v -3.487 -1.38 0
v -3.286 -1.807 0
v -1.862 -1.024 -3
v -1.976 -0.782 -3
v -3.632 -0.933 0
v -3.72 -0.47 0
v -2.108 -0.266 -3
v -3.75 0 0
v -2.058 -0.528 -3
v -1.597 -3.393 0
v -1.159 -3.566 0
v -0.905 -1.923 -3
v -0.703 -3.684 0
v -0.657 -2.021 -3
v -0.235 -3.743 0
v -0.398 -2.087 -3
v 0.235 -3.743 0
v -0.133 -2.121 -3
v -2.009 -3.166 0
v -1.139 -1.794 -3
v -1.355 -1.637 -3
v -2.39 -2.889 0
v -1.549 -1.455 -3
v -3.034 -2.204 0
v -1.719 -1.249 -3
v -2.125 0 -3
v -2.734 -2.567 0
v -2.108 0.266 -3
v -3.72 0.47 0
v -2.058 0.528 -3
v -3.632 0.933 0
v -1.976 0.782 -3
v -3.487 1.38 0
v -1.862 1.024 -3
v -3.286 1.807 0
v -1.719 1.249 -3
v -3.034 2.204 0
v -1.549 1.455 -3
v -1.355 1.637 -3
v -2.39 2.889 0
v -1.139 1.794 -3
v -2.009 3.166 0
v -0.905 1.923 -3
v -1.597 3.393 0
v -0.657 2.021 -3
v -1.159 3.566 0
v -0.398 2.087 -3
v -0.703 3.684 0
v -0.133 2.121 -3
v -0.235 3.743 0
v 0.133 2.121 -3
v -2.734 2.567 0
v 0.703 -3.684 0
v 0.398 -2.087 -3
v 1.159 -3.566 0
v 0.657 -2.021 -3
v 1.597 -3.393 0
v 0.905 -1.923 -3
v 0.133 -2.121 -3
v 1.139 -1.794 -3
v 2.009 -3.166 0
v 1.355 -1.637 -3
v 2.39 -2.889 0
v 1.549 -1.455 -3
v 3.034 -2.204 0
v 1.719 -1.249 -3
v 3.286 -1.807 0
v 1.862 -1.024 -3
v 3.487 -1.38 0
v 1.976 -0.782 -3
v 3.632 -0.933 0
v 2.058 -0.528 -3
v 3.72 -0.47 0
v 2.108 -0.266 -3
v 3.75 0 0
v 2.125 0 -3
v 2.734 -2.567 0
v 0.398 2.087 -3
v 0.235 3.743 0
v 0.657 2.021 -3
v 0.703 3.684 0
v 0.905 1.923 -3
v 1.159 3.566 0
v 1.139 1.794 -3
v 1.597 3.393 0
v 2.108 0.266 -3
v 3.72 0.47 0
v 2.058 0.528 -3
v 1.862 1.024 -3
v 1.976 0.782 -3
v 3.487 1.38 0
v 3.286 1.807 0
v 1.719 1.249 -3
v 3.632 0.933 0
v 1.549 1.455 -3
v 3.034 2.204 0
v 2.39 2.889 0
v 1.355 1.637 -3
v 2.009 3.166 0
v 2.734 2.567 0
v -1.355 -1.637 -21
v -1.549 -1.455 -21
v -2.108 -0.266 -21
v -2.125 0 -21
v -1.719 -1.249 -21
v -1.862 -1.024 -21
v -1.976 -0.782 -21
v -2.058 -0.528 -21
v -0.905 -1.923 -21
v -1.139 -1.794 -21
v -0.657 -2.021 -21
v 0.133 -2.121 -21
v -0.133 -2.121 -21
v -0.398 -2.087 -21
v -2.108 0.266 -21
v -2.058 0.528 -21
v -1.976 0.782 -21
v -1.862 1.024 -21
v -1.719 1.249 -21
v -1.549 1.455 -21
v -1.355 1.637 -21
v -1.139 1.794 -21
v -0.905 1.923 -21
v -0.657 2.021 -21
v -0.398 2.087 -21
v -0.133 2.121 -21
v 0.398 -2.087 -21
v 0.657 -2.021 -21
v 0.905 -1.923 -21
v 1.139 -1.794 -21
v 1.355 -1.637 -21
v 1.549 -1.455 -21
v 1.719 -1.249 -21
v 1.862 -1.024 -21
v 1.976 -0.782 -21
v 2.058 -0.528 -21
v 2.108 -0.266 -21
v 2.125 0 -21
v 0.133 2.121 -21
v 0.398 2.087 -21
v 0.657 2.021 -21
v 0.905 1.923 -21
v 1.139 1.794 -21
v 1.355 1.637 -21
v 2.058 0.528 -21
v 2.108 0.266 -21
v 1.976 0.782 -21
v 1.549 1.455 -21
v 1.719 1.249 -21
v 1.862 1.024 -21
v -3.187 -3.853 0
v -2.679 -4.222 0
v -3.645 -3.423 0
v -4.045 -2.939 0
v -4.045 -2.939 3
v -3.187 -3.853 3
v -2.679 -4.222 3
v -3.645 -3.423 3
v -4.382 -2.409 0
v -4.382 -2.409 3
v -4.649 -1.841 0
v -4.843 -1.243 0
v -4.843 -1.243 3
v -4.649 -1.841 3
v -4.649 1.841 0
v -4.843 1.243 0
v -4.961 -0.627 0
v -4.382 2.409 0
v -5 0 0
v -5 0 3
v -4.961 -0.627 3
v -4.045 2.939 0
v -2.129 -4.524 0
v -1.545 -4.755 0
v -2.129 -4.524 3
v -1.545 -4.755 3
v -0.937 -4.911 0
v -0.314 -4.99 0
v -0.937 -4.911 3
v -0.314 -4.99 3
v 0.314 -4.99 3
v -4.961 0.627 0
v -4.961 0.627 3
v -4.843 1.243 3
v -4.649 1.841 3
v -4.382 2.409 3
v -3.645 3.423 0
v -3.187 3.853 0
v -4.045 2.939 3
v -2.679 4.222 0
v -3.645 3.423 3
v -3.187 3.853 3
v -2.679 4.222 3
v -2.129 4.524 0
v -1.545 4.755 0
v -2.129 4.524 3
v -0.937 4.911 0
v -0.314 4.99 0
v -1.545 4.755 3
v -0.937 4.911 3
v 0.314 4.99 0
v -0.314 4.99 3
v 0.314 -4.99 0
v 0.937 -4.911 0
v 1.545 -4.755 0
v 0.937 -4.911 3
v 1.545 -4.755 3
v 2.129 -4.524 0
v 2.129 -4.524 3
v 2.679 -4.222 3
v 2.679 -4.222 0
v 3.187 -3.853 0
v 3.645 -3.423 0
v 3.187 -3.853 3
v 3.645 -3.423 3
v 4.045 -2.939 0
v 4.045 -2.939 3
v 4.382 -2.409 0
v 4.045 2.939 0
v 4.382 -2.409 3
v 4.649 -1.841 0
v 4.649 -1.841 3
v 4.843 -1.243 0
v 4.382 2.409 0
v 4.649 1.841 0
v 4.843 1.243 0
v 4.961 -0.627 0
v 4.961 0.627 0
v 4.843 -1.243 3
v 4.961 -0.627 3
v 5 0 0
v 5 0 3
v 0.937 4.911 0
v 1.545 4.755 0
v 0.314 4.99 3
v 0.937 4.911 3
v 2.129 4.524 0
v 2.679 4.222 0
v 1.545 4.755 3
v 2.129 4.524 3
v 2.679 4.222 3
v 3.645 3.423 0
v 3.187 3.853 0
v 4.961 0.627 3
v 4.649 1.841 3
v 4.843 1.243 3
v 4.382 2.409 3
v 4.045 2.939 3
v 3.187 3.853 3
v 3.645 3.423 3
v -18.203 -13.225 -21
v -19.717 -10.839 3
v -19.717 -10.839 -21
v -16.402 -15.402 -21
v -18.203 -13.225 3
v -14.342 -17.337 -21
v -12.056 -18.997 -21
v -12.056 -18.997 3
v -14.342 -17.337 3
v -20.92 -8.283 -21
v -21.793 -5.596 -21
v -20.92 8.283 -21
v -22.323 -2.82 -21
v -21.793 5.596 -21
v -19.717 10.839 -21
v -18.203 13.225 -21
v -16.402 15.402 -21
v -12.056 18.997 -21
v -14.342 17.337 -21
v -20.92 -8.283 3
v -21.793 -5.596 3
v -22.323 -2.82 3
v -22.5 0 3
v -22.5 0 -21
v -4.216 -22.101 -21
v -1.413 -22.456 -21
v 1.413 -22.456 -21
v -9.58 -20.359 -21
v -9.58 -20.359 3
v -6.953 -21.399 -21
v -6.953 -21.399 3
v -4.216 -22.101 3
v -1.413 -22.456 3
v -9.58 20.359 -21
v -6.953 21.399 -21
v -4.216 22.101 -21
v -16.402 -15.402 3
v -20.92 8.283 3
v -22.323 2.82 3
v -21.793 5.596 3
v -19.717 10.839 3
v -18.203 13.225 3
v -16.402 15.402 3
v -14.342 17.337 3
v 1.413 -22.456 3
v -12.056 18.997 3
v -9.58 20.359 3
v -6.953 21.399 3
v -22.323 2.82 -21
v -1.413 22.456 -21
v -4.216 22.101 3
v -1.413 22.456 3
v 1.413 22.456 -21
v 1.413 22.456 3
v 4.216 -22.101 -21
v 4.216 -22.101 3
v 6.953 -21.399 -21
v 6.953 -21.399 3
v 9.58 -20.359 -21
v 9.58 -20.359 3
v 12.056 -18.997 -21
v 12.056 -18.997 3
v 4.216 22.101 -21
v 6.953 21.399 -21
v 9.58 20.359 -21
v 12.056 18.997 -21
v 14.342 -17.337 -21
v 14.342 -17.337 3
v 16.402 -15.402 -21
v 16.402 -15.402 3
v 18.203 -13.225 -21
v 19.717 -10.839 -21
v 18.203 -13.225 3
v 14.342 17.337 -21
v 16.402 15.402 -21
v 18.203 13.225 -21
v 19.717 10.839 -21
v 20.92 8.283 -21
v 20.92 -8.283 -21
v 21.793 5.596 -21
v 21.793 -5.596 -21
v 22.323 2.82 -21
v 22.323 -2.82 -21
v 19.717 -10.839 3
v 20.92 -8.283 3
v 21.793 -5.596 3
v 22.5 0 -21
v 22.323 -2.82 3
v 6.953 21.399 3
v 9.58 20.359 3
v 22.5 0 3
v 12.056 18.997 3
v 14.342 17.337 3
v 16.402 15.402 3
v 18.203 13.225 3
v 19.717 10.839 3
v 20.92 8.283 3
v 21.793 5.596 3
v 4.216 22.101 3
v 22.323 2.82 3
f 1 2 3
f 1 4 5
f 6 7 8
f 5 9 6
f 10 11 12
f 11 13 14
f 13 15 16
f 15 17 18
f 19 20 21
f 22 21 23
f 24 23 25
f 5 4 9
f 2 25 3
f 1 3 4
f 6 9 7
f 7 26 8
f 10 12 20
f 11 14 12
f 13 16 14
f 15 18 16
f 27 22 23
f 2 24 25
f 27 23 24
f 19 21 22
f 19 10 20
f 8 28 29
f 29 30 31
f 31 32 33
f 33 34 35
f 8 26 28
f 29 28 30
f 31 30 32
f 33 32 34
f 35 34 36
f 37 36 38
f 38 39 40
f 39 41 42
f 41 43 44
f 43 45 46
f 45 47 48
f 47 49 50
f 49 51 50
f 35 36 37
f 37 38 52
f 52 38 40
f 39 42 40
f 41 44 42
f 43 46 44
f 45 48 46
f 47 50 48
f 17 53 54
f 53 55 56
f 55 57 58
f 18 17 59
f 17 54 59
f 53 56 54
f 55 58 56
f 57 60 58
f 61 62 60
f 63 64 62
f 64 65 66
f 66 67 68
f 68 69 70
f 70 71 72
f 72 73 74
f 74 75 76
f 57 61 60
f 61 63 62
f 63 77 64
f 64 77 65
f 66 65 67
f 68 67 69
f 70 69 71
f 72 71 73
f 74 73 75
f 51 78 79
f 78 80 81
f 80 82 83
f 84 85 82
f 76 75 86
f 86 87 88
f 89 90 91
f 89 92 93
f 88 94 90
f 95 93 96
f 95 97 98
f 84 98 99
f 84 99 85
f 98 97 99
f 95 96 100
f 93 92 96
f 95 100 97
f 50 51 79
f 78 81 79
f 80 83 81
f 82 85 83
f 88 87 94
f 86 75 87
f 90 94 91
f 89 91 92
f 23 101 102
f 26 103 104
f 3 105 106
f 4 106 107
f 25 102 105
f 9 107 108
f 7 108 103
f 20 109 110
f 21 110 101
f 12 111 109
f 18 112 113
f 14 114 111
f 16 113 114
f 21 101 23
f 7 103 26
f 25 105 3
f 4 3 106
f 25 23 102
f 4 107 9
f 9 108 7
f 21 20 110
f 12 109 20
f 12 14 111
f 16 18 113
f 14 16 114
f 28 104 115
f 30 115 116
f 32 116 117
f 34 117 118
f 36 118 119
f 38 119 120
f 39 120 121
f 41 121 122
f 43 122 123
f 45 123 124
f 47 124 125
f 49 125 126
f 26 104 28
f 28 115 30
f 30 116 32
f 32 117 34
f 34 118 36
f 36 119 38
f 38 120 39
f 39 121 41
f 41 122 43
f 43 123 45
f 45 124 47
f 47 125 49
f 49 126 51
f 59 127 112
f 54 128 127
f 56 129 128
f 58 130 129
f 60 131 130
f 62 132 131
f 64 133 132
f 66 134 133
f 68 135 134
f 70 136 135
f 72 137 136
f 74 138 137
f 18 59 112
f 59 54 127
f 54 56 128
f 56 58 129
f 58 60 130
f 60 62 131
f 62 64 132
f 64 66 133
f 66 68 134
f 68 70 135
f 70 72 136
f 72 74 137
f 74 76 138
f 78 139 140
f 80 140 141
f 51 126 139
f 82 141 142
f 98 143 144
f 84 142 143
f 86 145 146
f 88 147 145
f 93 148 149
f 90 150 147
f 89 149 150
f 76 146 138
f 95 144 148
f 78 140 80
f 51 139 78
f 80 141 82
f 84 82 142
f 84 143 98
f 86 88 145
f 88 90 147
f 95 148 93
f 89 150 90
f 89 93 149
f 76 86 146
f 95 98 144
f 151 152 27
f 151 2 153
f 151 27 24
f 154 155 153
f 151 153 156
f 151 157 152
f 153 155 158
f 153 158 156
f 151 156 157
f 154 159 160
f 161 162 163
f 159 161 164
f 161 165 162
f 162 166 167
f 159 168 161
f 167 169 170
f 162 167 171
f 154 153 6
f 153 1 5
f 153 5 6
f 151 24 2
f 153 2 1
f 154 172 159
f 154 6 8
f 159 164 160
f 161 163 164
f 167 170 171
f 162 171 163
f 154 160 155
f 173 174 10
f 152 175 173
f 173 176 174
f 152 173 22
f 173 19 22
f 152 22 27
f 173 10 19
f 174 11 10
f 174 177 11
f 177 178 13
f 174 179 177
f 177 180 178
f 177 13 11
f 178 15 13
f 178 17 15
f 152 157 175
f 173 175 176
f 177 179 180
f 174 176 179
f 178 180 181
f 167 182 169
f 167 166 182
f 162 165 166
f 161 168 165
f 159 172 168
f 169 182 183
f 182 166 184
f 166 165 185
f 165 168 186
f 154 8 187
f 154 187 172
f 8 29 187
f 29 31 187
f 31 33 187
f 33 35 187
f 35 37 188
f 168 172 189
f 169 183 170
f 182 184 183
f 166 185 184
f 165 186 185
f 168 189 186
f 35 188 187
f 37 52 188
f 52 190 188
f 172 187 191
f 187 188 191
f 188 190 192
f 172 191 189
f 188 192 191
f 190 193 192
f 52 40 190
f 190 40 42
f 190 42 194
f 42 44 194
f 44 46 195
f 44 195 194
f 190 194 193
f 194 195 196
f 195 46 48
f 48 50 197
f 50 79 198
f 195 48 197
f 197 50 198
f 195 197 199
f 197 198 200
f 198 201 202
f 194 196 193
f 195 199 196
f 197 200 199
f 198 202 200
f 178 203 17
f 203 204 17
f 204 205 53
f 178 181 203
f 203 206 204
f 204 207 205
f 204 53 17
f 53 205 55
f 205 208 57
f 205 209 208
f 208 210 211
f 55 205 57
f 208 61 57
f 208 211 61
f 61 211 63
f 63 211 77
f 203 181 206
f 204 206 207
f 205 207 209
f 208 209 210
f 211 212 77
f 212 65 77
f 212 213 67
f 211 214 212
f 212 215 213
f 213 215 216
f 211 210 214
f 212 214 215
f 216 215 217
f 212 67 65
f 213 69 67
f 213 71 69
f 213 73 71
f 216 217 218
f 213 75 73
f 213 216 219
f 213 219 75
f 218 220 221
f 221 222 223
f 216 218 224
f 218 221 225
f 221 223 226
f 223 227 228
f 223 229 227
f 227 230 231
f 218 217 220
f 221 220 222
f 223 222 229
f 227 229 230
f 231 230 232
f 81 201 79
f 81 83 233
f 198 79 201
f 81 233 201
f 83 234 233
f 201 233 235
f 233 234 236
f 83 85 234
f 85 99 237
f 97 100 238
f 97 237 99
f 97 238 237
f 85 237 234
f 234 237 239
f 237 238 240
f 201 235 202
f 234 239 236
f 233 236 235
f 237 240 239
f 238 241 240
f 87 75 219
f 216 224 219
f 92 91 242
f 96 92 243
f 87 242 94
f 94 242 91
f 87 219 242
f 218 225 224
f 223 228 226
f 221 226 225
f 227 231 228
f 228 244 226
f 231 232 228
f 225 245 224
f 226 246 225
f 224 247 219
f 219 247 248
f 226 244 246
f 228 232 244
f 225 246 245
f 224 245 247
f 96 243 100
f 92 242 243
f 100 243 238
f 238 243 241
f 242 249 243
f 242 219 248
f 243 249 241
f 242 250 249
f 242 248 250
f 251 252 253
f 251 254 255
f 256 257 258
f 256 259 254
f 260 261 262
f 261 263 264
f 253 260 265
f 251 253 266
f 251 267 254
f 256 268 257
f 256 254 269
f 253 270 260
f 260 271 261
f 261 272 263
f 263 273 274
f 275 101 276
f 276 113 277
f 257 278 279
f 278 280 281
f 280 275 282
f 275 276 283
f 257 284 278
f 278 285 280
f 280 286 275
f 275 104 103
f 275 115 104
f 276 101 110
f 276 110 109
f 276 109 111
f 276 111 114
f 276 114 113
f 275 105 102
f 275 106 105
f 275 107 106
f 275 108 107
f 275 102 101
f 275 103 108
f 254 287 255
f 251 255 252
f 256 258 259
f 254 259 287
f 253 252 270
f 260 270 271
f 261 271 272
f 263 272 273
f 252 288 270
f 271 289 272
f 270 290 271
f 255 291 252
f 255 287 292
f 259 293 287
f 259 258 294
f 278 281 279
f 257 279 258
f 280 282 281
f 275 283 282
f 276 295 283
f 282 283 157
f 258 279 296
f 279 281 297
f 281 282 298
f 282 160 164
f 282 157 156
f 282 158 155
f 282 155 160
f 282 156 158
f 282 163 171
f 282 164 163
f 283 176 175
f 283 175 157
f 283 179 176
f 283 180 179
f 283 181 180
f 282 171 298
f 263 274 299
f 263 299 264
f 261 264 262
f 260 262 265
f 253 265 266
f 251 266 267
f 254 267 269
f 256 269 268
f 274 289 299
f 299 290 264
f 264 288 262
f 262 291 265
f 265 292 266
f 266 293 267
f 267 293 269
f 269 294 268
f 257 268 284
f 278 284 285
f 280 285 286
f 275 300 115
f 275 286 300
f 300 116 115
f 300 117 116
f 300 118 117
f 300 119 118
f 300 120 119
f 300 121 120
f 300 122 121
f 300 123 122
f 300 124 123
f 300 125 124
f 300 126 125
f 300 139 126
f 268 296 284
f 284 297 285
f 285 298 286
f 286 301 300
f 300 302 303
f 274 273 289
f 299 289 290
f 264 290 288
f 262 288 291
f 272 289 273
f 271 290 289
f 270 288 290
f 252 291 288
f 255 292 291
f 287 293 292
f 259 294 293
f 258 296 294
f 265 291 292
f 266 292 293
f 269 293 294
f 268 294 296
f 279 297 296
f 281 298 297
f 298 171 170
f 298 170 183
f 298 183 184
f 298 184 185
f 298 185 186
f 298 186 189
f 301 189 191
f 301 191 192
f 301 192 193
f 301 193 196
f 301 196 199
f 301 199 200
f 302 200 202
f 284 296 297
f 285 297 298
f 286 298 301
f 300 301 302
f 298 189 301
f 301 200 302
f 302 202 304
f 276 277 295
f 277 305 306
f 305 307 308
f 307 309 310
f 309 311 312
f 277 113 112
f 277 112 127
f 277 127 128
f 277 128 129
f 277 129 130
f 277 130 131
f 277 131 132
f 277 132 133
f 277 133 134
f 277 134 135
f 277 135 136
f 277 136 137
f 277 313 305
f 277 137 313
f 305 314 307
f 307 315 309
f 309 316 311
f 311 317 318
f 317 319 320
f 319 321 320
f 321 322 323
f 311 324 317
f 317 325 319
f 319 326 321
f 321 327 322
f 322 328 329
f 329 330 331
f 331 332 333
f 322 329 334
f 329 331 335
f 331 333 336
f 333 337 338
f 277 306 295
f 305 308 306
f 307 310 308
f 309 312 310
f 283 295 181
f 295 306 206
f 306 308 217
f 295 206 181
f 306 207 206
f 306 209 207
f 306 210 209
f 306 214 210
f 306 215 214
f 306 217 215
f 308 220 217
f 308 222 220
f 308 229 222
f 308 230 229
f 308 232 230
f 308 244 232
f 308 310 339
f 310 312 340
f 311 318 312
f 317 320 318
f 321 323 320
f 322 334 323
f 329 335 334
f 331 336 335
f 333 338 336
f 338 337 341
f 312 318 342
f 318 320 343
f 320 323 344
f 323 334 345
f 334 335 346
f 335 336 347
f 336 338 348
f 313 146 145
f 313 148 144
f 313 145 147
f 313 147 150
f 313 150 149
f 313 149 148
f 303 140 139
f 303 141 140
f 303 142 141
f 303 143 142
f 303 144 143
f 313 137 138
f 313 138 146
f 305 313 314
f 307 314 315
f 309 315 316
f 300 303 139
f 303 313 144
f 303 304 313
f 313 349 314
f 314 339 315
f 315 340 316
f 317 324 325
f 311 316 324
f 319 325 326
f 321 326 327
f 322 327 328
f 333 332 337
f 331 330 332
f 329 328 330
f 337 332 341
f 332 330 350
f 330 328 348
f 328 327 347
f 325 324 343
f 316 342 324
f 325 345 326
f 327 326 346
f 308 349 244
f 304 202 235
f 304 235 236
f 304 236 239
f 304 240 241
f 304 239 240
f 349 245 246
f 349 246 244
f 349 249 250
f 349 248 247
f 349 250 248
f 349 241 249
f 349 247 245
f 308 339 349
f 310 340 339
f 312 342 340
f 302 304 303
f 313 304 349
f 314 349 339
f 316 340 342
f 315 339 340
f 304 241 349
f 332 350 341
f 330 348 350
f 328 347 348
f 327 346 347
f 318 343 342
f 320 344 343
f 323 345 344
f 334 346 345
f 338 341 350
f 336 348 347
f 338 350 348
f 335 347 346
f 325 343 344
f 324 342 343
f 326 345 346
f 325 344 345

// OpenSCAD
$fn = 50;


difference() {
	union() {
		translate(v = [0, 0, -21.0000000000]) {
			cylinder(h = 24, r = 22.5000000000);
		}
	}
	union() {
		translate(v = [0, 0, 0]) {
			rotate(a = [0, 0, 0]) {
				difference() {
					union() {
						translate(v = [0, 0, -24.0000000000]) {
							cylinder(h = 24, r = 2.0000000000);
						}
						translate(v = [0, 0, -3]) {
							cylinder(h = 3, r1 = 2.1250000000, r2 = 3.7500000000);
						}
						translate(v = [0, 0, -24.0000000000]) {
							cylinder(h = 24, r = 2.1250000000);
						}
						translate(v = [0, 0, -24.0000000000]) {
							cylinder(h = 24, r = 2.0000000000);
						}
					}
					union();
				}
			}
		}
		#cylinder(h = 3, r = 5.0000000000);
	}
}
